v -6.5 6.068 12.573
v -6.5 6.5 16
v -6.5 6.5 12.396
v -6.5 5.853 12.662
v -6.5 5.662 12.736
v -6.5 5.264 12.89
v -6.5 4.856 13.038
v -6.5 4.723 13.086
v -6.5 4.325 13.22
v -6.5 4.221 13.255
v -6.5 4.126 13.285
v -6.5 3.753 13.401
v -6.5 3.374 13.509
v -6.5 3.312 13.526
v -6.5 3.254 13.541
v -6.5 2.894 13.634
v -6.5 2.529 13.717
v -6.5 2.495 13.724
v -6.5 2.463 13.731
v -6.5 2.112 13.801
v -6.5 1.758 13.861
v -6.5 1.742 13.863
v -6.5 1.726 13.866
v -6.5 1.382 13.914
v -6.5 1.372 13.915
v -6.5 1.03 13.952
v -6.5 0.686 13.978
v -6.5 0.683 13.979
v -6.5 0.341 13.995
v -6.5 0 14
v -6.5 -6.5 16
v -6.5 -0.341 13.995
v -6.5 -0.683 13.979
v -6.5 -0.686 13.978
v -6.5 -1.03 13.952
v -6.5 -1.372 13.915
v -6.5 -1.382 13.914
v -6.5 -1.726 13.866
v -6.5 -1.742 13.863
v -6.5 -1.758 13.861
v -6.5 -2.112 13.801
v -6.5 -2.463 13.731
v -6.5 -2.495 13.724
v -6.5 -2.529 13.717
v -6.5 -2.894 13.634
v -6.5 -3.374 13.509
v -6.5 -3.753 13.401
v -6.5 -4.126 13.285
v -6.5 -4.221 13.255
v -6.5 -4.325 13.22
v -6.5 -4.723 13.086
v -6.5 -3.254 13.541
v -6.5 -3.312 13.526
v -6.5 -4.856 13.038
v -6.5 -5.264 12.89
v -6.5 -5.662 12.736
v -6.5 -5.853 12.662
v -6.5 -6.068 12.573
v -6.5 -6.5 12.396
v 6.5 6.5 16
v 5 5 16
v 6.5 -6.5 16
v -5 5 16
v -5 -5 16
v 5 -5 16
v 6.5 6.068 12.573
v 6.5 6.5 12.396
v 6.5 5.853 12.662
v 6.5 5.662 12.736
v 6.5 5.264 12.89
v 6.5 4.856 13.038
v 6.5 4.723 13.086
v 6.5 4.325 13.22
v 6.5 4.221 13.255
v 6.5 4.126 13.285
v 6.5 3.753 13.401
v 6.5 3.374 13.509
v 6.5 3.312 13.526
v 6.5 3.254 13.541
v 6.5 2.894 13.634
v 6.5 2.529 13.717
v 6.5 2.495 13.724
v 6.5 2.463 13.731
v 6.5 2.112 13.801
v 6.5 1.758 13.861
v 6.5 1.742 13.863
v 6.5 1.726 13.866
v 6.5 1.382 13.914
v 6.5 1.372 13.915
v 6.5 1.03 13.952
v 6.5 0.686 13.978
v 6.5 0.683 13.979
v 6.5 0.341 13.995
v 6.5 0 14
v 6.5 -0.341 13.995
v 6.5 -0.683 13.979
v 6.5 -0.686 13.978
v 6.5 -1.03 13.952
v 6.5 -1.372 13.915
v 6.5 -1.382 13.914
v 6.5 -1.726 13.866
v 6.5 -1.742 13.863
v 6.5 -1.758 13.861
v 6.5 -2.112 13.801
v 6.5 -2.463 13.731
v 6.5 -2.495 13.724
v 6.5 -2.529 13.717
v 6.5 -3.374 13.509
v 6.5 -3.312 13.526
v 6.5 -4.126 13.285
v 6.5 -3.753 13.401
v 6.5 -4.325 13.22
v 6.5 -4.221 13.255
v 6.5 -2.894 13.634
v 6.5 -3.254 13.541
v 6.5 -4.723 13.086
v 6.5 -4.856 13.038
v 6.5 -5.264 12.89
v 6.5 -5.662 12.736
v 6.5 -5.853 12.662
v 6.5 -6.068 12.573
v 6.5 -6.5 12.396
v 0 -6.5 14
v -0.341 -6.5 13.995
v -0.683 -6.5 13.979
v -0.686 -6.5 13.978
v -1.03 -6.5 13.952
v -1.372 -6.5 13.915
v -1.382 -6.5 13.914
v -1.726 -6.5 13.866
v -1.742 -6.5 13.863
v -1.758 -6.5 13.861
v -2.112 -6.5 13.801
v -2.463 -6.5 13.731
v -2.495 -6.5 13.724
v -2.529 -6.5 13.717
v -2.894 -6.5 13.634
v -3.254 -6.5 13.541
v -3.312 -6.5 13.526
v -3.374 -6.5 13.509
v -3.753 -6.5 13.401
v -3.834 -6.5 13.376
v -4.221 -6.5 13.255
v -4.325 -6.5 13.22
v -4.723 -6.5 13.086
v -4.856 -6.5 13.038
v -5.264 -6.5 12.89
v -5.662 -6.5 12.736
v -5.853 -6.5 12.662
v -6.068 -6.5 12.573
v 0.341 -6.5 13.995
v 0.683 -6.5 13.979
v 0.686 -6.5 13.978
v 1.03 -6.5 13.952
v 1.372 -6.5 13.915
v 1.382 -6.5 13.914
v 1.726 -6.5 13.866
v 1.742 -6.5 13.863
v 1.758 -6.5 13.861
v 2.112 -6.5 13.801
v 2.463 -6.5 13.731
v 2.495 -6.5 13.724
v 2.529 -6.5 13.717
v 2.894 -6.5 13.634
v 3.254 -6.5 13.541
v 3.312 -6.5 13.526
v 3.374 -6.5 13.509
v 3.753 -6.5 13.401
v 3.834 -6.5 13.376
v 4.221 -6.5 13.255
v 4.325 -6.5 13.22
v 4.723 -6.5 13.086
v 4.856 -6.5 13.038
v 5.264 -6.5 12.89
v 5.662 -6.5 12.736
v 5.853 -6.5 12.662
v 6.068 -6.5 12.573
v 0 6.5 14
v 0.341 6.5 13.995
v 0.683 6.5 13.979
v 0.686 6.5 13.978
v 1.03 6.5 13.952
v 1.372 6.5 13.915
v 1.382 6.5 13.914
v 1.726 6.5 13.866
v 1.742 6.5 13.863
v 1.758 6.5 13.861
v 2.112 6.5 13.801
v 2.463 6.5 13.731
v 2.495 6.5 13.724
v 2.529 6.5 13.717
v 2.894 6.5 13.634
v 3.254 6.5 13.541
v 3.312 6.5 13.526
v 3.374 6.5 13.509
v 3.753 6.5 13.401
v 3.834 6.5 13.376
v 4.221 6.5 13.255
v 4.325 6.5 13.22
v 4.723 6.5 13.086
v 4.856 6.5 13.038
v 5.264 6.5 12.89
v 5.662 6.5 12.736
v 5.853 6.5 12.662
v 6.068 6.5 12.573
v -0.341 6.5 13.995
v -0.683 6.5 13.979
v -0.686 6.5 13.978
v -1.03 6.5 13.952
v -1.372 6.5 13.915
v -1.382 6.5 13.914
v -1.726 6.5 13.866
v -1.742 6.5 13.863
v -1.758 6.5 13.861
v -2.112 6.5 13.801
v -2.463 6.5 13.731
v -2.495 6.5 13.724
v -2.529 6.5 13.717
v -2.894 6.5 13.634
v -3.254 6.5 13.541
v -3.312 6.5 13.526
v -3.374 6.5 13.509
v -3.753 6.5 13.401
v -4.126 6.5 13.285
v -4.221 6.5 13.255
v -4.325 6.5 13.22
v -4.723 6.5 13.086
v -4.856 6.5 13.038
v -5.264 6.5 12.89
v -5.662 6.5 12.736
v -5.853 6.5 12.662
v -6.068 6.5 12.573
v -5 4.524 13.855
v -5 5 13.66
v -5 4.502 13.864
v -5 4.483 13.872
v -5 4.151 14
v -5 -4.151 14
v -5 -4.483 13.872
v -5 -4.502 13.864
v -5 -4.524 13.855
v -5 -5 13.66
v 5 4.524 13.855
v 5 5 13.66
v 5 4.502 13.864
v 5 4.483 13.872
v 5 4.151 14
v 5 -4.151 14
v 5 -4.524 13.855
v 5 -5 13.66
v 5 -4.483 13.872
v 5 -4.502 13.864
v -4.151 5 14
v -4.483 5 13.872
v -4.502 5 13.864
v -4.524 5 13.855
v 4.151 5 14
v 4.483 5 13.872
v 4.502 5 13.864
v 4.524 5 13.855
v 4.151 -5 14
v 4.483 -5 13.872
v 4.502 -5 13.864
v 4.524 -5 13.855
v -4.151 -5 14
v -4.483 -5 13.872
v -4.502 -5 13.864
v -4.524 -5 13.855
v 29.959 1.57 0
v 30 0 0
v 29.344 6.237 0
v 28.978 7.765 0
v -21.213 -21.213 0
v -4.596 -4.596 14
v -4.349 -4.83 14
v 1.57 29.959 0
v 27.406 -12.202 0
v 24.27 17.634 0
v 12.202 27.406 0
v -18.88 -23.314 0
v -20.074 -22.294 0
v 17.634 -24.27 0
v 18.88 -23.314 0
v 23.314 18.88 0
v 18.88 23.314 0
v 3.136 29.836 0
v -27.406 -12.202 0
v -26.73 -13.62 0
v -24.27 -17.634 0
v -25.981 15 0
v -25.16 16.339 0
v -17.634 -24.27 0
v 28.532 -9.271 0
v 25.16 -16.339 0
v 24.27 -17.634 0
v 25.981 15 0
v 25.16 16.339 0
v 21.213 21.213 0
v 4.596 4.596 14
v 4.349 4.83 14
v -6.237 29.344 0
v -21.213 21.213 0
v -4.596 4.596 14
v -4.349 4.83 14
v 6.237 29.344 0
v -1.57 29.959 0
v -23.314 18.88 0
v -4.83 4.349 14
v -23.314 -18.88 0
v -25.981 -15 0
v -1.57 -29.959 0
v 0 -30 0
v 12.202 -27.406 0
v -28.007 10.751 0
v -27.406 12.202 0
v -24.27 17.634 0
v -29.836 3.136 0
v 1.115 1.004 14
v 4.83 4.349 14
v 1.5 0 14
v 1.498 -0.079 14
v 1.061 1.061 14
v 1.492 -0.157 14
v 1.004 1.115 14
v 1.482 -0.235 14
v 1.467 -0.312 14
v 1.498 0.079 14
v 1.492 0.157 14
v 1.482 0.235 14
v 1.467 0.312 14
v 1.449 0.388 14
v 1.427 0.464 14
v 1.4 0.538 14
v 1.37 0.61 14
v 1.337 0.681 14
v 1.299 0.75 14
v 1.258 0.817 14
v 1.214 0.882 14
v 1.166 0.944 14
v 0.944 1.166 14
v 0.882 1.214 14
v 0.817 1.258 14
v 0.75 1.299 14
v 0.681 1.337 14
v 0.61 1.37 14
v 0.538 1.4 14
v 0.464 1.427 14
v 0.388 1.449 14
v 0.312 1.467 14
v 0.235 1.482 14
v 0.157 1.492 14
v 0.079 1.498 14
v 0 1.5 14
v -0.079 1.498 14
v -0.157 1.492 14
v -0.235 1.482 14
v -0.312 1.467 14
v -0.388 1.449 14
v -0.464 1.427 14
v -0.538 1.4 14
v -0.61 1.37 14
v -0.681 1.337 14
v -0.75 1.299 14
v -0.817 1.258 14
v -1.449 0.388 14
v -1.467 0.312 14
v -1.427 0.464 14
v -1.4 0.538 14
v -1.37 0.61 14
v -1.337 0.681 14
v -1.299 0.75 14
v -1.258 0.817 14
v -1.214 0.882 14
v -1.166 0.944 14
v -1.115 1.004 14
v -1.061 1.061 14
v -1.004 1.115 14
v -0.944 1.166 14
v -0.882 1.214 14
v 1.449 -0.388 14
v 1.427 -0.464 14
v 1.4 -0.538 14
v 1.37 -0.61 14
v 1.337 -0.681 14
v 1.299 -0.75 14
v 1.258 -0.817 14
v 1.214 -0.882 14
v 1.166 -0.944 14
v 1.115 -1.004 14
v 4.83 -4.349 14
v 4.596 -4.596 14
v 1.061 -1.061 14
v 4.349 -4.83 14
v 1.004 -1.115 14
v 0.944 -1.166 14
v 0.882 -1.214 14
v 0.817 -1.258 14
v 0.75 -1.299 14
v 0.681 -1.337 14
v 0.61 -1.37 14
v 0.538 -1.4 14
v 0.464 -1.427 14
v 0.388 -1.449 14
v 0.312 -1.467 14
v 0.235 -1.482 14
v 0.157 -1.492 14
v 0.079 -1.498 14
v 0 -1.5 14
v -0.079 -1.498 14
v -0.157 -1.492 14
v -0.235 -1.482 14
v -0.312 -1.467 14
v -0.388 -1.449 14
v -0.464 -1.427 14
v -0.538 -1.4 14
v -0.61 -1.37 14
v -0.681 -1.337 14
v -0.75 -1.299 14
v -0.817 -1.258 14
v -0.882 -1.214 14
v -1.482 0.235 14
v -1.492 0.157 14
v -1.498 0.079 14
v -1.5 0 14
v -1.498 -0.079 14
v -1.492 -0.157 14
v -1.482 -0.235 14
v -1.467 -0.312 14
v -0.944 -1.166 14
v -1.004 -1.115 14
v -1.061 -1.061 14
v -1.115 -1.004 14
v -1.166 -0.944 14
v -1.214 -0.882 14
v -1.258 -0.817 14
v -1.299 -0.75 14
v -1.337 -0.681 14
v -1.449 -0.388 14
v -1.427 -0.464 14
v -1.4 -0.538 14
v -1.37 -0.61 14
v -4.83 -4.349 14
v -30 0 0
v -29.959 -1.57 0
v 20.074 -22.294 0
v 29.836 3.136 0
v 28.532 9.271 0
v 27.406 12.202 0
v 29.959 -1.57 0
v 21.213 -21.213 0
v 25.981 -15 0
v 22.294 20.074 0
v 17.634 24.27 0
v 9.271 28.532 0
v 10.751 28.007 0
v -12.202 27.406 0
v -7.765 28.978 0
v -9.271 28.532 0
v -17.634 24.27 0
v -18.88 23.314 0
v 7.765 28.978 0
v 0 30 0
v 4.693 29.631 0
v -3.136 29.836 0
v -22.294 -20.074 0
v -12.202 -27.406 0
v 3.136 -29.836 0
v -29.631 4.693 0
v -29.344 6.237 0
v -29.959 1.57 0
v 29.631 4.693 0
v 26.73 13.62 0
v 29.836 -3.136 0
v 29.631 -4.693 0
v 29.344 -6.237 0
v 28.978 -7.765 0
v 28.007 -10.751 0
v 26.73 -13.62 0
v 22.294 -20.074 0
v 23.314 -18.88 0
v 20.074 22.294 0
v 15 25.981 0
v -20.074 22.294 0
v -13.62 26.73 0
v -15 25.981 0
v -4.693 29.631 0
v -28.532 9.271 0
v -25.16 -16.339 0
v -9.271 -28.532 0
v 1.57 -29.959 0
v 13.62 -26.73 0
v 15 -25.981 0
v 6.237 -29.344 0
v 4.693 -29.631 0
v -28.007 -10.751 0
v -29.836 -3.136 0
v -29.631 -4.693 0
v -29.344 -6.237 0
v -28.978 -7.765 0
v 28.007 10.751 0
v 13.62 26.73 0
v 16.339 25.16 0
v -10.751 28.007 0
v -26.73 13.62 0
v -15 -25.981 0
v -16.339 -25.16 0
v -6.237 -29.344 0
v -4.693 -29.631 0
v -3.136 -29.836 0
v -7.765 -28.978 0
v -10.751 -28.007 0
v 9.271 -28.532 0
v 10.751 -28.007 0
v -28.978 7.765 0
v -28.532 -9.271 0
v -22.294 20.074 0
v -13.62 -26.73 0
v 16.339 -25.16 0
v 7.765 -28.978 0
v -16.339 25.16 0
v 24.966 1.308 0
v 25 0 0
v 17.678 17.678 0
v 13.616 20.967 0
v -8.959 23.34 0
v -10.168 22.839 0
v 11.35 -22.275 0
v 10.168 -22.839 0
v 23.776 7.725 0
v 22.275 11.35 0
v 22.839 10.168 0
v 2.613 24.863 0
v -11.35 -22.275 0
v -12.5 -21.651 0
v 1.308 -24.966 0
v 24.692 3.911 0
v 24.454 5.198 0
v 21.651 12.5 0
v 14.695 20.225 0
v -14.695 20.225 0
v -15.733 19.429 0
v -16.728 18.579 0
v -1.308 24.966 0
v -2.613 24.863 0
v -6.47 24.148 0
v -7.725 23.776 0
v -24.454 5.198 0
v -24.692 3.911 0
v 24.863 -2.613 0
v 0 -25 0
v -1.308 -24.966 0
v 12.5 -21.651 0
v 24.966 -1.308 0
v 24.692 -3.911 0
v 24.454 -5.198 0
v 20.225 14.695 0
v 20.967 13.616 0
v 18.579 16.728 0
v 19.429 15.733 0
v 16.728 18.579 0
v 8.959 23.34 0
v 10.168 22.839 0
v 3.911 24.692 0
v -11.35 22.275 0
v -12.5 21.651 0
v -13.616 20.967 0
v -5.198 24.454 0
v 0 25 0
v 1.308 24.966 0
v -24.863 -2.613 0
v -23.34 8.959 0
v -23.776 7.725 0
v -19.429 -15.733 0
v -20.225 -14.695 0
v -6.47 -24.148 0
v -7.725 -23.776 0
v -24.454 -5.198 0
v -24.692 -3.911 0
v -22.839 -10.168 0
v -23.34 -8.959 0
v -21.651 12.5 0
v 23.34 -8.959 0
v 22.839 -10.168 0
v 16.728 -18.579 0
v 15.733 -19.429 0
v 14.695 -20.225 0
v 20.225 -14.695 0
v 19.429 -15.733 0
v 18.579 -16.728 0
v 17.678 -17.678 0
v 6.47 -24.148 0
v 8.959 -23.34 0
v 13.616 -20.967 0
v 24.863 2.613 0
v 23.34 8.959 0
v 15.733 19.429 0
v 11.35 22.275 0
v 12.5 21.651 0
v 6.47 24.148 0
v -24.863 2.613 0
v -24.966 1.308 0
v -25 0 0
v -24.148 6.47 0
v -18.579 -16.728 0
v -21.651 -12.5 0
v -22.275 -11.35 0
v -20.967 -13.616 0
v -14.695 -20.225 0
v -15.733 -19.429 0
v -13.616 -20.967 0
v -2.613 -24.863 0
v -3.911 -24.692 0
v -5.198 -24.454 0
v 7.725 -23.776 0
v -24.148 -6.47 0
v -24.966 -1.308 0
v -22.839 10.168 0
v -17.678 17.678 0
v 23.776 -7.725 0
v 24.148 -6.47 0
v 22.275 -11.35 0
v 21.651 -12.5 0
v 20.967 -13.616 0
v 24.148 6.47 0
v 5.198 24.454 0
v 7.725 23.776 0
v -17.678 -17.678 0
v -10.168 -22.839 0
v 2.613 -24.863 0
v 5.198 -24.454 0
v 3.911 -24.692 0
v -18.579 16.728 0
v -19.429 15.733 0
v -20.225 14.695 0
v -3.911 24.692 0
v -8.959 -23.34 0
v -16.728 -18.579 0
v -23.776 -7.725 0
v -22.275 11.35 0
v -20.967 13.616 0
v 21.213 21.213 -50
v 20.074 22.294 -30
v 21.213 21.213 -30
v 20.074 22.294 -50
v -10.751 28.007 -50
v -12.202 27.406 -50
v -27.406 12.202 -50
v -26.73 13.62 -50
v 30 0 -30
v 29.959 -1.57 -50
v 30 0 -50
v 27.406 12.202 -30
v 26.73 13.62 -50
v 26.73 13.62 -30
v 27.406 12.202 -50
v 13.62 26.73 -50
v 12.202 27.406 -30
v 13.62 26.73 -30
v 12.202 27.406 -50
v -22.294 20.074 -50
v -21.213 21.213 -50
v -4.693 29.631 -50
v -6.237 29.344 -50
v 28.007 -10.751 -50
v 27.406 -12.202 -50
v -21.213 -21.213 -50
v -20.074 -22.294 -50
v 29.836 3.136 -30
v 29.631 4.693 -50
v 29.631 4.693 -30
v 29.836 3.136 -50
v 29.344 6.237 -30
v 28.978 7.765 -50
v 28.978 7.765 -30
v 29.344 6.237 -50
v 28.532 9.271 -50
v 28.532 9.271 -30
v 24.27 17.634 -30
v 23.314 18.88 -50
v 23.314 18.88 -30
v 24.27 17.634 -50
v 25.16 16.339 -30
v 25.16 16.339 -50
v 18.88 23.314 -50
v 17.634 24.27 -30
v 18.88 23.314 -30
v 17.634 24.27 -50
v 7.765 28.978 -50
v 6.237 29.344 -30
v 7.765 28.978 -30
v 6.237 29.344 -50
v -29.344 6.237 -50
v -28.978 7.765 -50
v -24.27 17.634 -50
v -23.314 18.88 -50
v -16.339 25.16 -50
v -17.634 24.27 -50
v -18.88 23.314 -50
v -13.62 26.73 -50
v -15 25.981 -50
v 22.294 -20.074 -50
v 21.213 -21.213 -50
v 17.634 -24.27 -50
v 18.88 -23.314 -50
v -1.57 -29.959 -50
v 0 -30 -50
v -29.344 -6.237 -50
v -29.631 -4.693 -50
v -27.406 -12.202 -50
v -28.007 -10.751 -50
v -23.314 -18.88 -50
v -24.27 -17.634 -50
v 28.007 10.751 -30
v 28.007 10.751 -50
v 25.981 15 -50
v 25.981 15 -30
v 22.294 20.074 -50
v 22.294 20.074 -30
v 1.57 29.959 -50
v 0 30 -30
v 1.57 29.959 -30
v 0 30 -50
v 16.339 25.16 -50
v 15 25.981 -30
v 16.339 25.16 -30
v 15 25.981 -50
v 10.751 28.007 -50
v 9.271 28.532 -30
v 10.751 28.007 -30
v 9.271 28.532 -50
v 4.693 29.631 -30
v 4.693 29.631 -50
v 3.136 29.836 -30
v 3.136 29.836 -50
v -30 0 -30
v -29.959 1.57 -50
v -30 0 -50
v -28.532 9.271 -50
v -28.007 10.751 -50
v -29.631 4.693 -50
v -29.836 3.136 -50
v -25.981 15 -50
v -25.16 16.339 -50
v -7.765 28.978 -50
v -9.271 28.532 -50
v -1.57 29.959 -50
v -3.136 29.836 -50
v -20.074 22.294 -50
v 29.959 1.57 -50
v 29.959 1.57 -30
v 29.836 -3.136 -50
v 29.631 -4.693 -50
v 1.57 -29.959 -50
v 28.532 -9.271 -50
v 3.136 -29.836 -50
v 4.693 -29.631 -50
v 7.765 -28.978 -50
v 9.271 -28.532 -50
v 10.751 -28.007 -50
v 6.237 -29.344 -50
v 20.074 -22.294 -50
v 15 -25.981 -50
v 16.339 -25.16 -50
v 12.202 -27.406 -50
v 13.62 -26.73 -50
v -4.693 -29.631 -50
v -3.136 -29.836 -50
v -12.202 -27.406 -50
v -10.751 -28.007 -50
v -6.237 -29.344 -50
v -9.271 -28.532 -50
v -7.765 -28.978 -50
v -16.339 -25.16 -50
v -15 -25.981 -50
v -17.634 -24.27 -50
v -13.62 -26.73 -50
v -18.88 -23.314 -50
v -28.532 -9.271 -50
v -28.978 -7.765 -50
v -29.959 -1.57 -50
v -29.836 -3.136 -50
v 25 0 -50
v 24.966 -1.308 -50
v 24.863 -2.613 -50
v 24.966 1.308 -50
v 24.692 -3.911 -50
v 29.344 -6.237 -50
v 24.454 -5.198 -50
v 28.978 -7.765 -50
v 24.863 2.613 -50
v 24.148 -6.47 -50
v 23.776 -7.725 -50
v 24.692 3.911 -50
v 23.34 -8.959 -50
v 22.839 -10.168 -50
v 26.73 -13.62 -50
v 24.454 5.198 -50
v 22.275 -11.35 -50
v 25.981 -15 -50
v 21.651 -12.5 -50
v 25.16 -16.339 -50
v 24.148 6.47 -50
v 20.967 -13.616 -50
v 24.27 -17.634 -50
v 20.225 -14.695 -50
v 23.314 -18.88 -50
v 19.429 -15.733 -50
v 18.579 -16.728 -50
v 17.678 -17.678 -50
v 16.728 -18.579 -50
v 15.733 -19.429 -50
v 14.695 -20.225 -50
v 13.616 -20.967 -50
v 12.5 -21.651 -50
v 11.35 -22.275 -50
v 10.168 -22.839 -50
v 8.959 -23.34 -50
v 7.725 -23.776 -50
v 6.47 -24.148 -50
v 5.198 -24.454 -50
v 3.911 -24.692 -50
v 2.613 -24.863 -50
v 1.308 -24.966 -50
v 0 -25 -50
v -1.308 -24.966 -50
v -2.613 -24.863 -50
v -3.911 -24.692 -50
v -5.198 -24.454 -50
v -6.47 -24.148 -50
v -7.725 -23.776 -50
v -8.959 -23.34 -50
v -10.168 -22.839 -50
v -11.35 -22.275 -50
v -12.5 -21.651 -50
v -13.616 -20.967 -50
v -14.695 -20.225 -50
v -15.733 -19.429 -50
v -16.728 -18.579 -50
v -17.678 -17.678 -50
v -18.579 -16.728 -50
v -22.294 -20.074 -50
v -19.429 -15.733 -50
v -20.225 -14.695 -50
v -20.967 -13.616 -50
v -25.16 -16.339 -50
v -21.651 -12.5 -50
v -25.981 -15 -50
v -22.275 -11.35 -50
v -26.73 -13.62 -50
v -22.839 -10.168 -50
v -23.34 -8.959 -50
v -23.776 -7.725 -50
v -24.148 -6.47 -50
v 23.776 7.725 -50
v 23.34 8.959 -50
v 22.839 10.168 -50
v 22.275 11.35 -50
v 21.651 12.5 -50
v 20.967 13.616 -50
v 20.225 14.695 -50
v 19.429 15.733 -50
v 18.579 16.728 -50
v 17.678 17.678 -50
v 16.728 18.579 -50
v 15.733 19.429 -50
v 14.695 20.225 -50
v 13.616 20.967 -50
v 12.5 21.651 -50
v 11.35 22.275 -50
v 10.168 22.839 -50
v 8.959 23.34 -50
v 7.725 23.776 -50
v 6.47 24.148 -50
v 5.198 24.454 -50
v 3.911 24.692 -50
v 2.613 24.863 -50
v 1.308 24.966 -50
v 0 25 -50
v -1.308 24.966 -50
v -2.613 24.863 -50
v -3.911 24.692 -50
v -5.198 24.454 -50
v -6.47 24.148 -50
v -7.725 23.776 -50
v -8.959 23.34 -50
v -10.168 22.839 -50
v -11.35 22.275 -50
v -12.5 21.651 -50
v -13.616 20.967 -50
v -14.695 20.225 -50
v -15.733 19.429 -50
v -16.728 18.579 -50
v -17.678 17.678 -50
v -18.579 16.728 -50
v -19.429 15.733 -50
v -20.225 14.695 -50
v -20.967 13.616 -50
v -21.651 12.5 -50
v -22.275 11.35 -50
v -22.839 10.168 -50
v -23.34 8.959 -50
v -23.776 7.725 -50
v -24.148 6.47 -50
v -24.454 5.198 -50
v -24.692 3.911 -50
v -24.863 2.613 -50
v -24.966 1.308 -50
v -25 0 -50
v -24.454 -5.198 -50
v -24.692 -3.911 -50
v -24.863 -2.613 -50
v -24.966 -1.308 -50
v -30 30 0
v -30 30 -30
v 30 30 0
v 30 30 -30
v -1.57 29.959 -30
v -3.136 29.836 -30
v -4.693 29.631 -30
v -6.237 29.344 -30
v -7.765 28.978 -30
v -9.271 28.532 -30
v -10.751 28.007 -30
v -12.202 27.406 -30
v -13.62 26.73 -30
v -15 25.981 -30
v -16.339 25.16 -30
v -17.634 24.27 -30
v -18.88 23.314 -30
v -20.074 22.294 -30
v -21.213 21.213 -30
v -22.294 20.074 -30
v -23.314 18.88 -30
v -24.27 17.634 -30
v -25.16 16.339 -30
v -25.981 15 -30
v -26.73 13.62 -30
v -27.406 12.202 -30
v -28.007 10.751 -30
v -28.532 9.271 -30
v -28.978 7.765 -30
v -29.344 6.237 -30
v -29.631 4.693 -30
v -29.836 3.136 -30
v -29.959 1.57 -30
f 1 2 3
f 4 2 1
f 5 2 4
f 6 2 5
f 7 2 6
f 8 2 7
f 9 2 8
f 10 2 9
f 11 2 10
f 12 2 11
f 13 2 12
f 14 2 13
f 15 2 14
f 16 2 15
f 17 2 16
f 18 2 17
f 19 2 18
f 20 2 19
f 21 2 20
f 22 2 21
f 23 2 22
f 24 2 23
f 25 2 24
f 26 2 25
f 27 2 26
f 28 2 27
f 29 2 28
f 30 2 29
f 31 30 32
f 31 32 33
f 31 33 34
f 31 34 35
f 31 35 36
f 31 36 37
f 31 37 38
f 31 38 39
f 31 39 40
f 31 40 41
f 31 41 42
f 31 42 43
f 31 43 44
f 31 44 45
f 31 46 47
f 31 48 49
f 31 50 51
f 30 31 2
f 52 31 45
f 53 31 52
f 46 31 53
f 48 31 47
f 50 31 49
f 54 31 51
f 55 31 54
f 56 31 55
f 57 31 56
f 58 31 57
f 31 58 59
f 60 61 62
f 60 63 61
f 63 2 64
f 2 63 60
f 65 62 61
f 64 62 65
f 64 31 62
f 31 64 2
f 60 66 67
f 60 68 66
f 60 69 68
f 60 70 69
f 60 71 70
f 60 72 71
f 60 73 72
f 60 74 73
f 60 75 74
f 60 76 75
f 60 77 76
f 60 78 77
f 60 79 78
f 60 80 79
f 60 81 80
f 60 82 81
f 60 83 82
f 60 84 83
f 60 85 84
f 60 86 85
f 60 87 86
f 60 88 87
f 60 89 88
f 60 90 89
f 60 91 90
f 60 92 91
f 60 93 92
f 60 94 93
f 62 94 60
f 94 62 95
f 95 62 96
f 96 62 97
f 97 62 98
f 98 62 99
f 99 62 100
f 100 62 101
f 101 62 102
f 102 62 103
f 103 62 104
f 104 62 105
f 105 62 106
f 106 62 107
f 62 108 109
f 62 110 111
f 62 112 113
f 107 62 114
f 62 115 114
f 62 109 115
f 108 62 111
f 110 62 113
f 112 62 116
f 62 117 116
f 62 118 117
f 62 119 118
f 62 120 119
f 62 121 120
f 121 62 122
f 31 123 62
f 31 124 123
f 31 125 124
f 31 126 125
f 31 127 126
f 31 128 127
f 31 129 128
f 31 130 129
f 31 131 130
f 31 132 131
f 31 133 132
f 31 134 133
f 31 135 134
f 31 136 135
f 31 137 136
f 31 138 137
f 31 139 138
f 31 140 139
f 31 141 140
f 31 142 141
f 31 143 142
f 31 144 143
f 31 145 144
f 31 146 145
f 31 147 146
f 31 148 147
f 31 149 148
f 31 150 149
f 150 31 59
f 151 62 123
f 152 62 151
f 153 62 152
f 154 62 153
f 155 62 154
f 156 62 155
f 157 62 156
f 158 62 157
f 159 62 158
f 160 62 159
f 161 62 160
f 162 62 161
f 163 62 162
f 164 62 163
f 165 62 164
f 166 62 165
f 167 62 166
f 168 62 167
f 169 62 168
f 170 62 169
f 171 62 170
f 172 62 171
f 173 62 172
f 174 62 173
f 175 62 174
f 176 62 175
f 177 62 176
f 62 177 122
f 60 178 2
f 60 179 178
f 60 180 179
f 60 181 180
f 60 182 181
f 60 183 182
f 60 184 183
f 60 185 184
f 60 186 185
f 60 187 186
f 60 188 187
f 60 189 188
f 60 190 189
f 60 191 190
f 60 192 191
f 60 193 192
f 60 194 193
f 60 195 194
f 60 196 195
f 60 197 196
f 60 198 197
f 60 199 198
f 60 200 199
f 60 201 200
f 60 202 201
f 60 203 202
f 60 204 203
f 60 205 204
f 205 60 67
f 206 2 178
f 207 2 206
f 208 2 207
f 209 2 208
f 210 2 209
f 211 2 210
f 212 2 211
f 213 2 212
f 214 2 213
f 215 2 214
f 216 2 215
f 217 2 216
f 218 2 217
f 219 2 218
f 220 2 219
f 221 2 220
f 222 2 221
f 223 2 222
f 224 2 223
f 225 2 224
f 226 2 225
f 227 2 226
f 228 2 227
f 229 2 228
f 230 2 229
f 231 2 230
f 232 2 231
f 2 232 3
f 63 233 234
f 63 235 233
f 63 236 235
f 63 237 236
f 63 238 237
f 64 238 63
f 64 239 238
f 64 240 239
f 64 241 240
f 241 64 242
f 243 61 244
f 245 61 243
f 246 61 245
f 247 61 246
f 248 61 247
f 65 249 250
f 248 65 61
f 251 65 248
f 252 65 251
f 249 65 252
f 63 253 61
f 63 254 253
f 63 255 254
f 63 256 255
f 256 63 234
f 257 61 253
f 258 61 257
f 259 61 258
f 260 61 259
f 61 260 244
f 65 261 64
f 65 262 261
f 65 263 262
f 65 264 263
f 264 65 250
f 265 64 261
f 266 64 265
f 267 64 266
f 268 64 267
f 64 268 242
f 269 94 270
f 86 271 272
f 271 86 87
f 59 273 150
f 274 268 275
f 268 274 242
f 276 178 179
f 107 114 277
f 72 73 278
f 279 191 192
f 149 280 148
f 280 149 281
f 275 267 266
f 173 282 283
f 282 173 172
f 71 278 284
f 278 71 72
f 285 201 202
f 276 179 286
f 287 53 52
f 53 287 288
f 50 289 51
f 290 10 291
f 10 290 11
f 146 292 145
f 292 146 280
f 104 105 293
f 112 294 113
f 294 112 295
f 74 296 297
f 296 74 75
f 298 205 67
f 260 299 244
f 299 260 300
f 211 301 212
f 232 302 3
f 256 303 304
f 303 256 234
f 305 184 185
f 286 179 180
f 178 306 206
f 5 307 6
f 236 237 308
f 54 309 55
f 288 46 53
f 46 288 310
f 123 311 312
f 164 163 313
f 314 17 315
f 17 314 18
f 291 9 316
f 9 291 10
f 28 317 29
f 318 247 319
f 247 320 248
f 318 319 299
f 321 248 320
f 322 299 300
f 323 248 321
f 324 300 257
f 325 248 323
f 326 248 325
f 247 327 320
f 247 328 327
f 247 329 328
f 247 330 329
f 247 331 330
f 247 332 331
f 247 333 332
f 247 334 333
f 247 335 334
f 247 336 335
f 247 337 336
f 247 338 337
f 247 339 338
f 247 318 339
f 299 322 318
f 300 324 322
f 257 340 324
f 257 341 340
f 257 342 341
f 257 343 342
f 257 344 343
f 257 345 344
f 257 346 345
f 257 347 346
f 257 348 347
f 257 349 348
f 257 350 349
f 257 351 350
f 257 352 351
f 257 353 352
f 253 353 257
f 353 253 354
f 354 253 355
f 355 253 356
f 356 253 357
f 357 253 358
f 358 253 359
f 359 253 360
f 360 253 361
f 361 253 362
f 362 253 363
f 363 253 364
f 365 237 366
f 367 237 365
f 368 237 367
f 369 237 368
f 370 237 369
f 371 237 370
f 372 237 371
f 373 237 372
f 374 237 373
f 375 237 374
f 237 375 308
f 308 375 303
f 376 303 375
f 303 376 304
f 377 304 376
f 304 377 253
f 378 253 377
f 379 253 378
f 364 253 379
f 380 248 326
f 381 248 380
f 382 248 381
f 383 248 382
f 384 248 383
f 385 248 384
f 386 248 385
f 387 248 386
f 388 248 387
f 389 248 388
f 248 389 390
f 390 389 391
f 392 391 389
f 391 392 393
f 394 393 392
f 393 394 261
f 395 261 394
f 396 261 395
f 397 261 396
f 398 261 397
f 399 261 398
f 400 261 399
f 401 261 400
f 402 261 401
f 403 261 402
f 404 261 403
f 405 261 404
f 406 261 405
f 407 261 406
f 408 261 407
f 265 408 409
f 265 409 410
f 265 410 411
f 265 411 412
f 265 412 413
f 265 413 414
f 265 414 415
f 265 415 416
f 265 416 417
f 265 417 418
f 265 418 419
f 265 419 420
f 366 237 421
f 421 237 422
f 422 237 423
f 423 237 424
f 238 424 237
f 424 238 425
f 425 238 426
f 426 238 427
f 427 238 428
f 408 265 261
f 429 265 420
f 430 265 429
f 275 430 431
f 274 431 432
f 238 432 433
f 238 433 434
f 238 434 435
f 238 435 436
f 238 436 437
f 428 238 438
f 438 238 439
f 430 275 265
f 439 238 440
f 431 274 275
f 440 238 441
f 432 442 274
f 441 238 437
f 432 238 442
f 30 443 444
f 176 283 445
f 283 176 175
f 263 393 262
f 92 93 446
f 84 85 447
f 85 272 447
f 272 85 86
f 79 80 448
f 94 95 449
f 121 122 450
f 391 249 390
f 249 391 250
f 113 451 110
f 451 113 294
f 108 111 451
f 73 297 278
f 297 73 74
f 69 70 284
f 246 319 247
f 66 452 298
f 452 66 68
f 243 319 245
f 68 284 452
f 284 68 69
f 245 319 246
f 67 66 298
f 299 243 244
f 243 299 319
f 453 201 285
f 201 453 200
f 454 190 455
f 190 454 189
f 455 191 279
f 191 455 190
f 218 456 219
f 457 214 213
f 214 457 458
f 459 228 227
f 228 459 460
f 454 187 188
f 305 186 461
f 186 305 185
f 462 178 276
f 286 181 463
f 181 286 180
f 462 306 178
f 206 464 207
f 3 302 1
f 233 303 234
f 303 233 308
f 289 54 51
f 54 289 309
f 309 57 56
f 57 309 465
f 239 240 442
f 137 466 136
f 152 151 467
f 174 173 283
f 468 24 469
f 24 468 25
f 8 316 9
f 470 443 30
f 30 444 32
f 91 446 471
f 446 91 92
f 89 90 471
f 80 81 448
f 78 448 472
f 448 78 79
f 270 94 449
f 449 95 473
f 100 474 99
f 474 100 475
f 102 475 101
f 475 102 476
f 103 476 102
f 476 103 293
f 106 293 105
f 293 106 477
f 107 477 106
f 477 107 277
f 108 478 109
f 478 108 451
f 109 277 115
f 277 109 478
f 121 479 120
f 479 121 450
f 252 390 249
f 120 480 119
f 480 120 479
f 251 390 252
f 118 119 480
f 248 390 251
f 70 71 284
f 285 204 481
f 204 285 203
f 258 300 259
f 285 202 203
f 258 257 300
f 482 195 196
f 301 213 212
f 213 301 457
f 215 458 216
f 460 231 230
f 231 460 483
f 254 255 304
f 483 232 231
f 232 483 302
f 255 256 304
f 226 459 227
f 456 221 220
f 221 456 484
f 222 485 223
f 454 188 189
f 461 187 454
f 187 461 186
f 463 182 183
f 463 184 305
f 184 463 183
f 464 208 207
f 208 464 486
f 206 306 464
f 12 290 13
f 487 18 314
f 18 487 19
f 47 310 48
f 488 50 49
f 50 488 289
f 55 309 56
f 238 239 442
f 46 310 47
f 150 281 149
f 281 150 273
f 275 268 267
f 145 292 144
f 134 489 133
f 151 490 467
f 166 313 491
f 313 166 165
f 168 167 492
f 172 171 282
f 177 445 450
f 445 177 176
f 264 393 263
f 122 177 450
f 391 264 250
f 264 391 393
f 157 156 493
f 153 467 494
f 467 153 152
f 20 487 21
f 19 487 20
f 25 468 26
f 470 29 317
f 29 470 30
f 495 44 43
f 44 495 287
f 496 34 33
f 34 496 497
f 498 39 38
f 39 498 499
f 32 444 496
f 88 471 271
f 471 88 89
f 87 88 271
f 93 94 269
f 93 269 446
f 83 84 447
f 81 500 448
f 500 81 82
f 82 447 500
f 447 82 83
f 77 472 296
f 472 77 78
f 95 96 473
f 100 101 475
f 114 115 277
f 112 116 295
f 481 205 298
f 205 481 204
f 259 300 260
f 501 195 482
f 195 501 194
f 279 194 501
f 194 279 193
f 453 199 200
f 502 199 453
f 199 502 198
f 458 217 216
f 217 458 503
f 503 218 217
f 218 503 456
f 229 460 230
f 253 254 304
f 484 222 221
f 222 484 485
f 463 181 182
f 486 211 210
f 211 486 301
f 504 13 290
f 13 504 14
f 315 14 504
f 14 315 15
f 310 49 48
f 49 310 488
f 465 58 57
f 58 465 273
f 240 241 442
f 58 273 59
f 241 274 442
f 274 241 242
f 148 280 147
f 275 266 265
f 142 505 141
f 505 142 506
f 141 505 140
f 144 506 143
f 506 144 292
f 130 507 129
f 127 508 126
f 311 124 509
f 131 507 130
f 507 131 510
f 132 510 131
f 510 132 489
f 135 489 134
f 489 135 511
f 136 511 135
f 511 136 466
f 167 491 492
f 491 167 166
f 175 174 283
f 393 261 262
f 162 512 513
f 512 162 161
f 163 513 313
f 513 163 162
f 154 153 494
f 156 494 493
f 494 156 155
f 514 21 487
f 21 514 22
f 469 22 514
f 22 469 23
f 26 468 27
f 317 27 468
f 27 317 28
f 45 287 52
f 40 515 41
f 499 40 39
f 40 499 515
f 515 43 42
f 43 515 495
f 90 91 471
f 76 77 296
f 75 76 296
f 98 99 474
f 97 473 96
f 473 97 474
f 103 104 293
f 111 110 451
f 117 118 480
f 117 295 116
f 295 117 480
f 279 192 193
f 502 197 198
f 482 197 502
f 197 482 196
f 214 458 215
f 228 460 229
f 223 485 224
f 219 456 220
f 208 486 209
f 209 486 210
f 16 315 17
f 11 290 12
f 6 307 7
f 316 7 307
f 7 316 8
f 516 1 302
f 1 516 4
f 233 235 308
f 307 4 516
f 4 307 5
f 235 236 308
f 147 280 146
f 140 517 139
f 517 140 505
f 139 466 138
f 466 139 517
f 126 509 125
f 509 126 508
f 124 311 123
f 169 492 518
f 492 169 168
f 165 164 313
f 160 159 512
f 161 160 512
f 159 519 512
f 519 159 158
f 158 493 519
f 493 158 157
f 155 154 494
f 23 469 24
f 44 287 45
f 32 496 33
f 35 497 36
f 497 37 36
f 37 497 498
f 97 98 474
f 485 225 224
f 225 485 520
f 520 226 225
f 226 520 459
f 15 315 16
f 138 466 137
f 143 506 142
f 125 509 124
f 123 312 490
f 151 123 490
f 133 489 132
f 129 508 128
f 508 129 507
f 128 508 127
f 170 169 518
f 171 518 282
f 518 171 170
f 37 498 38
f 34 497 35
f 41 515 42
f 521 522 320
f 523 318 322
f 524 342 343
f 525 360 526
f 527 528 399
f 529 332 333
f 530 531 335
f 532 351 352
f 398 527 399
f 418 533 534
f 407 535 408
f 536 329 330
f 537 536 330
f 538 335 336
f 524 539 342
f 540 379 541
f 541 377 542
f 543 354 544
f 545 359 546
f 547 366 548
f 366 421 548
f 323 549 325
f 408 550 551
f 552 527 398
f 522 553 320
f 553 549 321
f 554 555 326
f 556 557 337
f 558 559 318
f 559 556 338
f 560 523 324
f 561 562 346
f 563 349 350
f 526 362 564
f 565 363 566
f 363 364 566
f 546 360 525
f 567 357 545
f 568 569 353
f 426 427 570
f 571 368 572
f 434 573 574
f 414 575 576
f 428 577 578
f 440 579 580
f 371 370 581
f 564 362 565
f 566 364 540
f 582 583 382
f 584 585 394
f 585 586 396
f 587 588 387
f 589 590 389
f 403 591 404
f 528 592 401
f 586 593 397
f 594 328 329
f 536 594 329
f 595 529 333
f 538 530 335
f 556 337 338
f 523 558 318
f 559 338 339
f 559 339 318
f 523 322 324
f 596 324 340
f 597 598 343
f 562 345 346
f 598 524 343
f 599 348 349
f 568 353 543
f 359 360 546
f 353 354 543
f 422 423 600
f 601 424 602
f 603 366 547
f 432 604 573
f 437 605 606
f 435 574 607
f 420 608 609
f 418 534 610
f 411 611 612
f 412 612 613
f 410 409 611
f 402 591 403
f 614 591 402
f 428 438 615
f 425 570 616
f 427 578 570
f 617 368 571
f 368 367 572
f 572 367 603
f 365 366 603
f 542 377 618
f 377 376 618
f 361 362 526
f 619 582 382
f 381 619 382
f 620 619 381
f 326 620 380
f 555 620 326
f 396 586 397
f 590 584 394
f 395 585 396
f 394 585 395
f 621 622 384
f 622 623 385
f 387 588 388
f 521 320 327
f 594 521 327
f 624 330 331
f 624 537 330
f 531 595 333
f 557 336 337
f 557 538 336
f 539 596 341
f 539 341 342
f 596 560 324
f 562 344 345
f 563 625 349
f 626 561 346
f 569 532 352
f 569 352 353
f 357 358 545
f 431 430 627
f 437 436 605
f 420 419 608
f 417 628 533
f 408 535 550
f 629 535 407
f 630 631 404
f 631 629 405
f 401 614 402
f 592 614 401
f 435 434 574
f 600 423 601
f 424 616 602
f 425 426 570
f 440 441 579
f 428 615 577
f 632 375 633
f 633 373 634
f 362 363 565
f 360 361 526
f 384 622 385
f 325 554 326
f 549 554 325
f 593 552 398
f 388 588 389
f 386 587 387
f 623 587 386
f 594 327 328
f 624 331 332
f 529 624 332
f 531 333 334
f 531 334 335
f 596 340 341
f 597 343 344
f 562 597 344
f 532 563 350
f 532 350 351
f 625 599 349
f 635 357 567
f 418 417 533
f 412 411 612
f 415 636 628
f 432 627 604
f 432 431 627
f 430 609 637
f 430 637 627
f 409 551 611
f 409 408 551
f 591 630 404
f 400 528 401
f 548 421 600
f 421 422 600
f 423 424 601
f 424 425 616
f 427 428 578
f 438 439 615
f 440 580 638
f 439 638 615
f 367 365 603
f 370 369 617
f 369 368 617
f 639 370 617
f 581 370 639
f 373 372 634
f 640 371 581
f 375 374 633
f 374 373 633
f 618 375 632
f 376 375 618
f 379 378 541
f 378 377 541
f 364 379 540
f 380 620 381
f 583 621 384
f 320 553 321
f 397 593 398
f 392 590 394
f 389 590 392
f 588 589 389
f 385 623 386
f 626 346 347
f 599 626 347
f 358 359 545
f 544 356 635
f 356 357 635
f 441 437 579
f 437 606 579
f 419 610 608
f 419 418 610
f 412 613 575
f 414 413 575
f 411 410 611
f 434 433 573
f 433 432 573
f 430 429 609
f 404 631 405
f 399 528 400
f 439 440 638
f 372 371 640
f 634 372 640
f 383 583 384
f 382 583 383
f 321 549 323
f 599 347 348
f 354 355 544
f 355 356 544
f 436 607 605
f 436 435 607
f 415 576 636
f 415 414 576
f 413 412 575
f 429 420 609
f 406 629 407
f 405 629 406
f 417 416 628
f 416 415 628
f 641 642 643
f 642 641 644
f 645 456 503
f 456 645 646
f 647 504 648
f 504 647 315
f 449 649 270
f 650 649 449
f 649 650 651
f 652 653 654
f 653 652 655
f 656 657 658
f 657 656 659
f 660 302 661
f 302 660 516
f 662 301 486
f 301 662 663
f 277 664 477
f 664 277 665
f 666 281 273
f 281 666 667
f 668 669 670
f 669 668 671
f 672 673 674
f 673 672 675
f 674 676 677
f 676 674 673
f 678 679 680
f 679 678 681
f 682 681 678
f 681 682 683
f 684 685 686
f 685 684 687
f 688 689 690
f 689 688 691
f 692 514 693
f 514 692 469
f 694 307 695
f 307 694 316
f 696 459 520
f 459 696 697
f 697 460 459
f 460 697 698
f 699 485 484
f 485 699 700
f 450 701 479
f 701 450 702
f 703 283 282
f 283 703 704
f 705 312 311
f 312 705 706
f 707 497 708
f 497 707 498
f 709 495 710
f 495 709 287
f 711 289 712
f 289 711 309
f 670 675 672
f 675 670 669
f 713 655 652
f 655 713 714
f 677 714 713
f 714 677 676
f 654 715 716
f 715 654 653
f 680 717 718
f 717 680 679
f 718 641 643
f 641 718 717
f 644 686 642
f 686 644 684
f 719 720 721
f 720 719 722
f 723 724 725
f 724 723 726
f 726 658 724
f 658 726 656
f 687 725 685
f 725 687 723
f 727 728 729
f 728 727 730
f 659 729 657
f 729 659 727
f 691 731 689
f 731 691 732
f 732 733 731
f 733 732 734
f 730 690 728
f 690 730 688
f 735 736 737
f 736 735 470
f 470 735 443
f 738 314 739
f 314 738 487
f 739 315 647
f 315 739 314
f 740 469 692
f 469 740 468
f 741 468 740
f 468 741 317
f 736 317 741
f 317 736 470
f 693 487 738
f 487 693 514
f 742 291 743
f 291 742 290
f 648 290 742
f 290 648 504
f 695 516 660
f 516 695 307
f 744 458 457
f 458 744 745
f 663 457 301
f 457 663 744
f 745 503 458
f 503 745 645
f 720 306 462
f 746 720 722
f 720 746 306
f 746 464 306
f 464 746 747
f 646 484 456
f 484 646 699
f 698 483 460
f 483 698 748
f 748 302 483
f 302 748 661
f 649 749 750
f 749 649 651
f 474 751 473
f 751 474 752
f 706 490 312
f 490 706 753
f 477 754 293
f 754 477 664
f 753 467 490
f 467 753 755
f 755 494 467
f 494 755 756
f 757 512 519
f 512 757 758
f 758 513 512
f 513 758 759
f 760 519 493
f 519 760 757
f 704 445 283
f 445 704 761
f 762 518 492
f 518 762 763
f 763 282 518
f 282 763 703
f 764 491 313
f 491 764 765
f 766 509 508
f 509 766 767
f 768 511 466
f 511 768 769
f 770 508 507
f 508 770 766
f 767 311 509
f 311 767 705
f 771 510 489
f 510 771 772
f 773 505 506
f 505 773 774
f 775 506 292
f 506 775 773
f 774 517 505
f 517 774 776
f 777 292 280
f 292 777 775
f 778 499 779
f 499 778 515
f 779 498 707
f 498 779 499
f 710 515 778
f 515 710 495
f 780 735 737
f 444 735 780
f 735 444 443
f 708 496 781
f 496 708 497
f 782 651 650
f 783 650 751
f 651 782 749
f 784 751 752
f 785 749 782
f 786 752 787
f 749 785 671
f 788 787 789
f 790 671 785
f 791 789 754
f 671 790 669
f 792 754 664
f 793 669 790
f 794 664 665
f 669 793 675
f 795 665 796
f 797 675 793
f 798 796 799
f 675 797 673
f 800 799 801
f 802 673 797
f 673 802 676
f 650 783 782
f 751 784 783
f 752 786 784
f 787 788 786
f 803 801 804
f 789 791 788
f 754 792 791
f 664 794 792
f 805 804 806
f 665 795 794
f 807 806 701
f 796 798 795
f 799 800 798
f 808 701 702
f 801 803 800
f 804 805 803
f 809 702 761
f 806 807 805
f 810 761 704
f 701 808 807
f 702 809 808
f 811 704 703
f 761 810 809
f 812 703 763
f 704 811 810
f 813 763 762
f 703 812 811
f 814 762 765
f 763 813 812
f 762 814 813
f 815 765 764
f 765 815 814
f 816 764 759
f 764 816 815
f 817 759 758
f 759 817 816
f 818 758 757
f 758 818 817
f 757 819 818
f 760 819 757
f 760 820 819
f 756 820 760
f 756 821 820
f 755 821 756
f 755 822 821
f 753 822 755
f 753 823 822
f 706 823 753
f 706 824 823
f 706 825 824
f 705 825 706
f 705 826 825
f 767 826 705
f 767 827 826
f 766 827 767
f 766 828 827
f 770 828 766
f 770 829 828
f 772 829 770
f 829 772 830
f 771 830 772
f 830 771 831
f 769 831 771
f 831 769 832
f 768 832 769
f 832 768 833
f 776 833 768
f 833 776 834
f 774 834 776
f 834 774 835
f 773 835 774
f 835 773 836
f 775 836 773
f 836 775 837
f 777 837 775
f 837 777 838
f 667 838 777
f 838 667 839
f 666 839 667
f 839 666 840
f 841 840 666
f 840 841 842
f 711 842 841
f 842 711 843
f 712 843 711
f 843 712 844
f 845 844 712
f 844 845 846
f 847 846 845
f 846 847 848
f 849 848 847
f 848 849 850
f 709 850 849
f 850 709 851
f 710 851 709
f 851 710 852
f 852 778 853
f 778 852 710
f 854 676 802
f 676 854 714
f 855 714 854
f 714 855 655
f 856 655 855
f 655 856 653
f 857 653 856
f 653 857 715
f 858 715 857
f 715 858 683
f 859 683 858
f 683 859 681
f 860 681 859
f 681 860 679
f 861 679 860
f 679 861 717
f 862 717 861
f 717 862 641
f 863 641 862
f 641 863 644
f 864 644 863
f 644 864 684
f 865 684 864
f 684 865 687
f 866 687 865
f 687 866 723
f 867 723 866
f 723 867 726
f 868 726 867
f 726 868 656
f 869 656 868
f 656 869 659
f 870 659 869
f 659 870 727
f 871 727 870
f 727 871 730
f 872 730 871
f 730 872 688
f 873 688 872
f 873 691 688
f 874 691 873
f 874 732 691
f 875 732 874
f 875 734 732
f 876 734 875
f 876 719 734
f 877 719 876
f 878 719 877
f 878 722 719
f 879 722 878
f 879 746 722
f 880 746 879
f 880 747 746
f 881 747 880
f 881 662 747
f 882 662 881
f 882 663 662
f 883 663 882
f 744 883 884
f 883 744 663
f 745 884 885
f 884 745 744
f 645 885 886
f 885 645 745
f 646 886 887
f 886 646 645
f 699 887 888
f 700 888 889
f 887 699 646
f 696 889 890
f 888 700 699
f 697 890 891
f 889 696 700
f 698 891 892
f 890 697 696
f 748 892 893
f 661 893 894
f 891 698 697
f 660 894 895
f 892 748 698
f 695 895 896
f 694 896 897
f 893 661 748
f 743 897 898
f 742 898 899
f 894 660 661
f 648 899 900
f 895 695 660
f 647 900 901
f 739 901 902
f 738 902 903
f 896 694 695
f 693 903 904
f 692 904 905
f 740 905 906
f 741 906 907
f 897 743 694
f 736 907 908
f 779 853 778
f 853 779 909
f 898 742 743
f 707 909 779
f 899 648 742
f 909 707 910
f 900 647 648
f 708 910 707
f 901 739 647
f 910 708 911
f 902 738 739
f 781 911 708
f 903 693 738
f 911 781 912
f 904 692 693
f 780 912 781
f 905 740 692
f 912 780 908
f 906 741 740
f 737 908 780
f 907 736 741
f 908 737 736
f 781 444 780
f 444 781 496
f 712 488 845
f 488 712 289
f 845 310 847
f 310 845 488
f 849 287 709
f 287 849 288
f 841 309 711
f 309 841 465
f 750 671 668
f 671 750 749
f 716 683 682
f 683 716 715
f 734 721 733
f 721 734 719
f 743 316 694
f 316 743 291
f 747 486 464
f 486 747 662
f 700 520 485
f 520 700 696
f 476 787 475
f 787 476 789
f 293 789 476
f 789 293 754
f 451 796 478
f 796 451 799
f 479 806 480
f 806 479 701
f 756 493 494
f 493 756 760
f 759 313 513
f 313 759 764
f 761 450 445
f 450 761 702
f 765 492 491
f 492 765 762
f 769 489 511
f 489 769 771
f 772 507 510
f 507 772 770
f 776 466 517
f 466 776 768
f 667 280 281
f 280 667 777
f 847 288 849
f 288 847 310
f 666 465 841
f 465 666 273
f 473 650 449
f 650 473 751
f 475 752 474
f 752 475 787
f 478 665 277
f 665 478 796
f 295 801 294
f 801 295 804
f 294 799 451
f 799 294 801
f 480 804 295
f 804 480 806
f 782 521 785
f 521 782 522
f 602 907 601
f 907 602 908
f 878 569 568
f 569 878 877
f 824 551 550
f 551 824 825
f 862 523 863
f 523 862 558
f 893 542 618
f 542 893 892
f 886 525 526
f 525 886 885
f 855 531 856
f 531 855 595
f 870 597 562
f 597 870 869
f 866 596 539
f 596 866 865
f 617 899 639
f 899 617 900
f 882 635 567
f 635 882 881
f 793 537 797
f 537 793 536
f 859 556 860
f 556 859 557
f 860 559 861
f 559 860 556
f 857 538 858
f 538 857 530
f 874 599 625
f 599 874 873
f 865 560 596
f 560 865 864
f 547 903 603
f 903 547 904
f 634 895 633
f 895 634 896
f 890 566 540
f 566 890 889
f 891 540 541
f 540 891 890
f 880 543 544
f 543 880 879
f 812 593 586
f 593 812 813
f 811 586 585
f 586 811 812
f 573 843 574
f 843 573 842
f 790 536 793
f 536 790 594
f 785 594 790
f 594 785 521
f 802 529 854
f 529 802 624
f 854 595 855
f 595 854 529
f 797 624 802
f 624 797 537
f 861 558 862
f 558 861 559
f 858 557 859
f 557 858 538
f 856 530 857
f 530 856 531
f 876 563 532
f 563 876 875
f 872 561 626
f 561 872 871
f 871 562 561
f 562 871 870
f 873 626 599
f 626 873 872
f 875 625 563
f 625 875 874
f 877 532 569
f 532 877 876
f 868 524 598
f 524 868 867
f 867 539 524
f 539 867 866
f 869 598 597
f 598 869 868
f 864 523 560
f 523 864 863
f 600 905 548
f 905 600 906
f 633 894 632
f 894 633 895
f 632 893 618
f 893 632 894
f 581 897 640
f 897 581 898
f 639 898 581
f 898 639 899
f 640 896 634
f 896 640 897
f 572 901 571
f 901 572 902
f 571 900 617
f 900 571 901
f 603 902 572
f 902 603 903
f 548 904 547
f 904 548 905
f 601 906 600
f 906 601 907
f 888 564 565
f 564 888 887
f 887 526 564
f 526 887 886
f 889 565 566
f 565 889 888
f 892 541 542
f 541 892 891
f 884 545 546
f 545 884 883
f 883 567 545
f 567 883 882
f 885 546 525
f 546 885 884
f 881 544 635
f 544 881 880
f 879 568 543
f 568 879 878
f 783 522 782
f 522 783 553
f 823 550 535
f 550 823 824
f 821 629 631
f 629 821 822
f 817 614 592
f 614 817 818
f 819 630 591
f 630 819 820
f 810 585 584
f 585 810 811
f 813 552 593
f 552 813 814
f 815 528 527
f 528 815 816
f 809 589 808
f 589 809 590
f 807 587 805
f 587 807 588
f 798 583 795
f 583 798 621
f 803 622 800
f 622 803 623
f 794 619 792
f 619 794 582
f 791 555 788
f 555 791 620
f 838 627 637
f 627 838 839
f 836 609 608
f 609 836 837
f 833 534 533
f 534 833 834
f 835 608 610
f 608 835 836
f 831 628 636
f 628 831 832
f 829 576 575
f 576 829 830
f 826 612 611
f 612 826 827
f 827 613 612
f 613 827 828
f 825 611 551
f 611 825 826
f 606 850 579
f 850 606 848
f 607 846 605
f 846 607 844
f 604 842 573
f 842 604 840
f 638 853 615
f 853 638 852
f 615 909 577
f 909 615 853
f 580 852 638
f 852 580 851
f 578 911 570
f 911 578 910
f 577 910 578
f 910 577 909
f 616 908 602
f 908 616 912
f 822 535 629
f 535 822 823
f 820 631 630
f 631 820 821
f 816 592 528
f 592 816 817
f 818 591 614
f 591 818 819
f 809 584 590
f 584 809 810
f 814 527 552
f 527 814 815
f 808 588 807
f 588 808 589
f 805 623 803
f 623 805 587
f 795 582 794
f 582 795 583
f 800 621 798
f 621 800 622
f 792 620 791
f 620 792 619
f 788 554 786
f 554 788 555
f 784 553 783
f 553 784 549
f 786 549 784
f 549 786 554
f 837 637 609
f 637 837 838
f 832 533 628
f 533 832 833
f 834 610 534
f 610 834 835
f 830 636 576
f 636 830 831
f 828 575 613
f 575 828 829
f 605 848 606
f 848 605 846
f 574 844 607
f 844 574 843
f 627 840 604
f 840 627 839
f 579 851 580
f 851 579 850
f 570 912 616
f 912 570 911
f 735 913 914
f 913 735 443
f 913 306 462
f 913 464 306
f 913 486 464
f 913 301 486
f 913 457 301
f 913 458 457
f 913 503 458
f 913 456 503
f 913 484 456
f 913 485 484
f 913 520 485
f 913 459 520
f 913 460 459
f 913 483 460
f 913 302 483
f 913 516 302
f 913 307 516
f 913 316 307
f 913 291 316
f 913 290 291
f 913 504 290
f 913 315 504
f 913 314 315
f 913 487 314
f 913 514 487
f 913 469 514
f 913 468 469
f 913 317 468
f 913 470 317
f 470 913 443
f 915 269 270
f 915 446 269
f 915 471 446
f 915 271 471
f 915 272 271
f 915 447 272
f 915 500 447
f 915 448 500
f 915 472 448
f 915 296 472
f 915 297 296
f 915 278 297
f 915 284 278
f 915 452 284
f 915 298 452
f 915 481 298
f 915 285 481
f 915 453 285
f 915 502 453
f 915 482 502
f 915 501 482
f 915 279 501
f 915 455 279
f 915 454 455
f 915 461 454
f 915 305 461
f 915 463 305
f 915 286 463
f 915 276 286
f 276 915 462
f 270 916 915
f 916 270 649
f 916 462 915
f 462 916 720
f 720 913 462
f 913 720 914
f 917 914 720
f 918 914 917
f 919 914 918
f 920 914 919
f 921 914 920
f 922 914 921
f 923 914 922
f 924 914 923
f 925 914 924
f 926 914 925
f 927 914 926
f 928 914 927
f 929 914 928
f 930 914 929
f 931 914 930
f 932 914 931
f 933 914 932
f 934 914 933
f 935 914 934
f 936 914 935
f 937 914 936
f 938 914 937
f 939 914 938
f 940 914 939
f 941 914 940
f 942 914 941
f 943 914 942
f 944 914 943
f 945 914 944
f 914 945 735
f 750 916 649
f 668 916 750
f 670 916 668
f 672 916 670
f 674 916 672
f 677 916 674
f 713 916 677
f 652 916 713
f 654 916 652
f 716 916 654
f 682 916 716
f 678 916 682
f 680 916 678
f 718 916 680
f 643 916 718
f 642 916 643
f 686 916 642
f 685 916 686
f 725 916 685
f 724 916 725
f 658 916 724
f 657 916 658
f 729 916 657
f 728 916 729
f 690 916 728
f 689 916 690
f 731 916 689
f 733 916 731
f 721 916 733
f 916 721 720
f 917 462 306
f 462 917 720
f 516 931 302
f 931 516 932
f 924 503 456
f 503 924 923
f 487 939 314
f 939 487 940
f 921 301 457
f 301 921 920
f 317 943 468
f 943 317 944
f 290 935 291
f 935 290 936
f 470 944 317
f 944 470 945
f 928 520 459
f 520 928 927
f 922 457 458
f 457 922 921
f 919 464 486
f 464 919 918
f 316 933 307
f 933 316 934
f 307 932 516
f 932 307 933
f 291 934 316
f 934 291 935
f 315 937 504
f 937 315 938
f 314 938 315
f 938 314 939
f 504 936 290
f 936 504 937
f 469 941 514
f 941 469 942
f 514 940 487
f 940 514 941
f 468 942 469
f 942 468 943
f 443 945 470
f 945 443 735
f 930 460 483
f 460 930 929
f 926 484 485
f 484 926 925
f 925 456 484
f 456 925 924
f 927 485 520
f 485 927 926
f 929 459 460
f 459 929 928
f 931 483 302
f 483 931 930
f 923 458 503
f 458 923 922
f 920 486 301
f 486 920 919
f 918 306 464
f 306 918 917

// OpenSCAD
$fn=120;
difference(){
cylinder(14, 30, 6.5);
cylinder(14, 25, 1.5);
}
translate([0,0,-50])
difference(){
cylinder(50, 30, 30);
cylinder(50, 25, 25);
}
translate([0,0,14])
difference(){
cube([13, 13, 4], center=true);
cube([10, 10, 4], center=true);
}

translate([-30,0,-30])
difference(){
cube([60,30,30]);
translate([30,0,0])
cylinder(30,30,30);
}
